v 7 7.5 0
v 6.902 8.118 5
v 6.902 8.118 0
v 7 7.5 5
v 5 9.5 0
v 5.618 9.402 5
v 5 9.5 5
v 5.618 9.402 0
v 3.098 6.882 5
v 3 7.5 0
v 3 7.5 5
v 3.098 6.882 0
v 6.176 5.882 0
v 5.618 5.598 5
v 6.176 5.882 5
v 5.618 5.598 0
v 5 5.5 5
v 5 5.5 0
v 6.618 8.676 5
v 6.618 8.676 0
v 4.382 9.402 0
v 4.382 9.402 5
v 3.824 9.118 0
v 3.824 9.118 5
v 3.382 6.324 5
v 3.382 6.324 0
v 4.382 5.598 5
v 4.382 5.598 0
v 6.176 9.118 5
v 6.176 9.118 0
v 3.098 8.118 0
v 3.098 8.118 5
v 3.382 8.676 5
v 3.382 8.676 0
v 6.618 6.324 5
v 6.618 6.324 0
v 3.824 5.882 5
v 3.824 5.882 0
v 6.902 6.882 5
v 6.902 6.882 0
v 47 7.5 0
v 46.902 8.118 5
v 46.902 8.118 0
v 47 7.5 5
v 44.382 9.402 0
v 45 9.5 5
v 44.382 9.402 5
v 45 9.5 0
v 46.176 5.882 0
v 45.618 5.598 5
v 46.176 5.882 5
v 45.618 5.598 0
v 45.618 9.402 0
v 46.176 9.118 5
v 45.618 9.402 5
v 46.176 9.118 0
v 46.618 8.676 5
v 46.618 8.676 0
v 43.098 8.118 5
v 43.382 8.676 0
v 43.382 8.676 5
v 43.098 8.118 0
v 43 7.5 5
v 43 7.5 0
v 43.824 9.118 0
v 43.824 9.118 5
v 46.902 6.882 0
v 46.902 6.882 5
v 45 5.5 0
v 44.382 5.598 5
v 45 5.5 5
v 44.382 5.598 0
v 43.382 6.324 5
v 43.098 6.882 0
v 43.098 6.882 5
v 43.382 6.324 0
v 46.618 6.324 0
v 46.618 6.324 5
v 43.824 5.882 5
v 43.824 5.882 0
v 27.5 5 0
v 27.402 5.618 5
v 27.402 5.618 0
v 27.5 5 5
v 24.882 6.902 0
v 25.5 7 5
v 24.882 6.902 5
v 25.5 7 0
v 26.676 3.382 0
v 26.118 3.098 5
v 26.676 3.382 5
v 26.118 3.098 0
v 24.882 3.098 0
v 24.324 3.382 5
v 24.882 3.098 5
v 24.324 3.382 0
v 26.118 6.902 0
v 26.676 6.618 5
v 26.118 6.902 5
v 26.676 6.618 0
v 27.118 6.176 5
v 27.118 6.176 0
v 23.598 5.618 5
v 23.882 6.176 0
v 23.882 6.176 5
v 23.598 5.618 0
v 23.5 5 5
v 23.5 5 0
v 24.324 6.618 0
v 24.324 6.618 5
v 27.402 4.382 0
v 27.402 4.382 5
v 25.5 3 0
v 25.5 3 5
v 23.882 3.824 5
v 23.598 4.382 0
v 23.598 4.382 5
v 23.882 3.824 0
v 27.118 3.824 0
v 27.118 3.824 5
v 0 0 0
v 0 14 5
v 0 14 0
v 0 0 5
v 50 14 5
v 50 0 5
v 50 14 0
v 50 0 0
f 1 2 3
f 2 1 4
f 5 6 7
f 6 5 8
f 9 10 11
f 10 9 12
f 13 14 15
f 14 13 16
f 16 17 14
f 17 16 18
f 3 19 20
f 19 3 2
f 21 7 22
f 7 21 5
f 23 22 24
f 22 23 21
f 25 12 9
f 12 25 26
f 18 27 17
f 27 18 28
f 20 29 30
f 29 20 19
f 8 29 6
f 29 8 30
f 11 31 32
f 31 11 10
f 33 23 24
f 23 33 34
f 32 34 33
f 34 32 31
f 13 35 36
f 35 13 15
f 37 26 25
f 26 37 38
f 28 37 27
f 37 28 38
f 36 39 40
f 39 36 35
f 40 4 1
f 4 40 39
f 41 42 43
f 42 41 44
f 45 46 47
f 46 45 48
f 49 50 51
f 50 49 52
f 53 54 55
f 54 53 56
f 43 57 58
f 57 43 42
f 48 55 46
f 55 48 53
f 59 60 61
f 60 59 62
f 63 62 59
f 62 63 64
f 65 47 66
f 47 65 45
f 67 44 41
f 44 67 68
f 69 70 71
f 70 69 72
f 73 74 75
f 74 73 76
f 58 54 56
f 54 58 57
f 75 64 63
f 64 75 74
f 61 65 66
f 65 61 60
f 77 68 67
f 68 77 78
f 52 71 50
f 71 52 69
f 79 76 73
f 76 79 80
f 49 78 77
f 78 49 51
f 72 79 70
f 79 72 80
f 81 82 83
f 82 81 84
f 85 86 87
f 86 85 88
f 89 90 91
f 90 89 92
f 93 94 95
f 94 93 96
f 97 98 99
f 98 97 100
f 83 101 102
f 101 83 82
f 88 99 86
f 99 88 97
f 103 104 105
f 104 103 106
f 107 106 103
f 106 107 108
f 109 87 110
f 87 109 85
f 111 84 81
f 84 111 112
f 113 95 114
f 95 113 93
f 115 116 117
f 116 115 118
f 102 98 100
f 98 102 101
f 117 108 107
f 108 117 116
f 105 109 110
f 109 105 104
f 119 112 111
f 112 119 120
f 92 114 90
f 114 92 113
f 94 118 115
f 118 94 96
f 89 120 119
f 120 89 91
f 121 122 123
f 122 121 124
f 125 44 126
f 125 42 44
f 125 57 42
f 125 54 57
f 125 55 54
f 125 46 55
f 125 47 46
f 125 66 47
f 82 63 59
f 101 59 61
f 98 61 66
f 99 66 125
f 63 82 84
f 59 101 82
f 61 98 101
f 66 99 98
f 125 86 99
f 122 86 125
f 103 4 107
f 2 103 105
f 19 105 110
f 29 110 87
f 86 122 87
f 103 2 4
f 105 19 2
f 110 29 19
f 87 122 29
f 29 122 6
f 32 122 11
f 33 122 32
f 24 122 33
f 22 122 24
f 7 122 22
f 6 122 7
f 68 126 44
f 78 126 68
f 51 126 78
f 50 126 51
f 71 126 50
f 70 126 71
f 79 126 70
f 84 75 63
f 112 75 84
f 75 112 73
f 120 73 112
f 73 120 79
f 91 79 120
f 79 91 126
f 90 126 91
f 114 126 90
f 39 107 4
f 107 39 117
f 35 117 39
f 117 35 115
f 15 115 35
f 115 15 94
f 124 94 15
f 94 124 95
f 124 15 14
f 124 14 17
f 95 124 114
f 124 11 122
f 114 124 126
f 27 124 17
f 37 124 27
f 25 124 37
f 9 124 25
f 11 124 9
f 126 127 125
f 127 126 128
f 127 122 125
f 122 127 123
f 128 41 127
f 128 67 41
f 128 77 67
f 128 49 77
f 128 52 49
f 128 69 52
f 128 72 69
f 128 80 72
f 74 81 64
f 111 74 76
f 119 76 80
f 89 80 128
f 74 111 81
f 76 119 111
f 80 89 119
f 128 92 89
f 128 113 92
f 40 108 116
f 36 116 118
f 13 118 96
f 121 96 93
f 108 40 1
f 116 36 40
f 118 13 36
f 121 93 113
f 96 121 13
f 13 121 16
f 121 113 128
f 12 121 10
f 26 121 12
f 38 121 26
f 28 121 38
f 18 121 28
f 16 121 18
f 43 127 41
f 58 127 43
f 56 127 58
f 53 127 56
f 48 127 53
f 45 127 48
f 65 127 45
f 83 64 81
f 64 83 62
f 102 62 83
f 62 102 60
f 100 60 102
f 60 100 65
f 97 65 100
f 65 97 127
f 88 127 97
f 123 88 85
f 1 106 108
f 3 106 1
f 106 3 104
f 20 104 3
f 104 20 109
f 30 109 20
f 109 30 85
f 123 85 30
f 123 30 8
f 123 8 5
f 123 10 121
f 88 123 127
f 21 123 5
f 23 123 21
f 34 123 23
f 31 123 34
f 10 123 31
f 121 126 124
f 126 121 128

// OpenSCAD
size = [50, 14, 5];
holes = [[5, 7.5], [45, 7.5], [25.5, 5]];
m = 4;

difference () {
  cube(size);
  
  for (h = holes) {
    translate(concat(h, [-1]))
    cylinder(size.z + 2, m/2, m/2, $fn = 20);
  }
}
